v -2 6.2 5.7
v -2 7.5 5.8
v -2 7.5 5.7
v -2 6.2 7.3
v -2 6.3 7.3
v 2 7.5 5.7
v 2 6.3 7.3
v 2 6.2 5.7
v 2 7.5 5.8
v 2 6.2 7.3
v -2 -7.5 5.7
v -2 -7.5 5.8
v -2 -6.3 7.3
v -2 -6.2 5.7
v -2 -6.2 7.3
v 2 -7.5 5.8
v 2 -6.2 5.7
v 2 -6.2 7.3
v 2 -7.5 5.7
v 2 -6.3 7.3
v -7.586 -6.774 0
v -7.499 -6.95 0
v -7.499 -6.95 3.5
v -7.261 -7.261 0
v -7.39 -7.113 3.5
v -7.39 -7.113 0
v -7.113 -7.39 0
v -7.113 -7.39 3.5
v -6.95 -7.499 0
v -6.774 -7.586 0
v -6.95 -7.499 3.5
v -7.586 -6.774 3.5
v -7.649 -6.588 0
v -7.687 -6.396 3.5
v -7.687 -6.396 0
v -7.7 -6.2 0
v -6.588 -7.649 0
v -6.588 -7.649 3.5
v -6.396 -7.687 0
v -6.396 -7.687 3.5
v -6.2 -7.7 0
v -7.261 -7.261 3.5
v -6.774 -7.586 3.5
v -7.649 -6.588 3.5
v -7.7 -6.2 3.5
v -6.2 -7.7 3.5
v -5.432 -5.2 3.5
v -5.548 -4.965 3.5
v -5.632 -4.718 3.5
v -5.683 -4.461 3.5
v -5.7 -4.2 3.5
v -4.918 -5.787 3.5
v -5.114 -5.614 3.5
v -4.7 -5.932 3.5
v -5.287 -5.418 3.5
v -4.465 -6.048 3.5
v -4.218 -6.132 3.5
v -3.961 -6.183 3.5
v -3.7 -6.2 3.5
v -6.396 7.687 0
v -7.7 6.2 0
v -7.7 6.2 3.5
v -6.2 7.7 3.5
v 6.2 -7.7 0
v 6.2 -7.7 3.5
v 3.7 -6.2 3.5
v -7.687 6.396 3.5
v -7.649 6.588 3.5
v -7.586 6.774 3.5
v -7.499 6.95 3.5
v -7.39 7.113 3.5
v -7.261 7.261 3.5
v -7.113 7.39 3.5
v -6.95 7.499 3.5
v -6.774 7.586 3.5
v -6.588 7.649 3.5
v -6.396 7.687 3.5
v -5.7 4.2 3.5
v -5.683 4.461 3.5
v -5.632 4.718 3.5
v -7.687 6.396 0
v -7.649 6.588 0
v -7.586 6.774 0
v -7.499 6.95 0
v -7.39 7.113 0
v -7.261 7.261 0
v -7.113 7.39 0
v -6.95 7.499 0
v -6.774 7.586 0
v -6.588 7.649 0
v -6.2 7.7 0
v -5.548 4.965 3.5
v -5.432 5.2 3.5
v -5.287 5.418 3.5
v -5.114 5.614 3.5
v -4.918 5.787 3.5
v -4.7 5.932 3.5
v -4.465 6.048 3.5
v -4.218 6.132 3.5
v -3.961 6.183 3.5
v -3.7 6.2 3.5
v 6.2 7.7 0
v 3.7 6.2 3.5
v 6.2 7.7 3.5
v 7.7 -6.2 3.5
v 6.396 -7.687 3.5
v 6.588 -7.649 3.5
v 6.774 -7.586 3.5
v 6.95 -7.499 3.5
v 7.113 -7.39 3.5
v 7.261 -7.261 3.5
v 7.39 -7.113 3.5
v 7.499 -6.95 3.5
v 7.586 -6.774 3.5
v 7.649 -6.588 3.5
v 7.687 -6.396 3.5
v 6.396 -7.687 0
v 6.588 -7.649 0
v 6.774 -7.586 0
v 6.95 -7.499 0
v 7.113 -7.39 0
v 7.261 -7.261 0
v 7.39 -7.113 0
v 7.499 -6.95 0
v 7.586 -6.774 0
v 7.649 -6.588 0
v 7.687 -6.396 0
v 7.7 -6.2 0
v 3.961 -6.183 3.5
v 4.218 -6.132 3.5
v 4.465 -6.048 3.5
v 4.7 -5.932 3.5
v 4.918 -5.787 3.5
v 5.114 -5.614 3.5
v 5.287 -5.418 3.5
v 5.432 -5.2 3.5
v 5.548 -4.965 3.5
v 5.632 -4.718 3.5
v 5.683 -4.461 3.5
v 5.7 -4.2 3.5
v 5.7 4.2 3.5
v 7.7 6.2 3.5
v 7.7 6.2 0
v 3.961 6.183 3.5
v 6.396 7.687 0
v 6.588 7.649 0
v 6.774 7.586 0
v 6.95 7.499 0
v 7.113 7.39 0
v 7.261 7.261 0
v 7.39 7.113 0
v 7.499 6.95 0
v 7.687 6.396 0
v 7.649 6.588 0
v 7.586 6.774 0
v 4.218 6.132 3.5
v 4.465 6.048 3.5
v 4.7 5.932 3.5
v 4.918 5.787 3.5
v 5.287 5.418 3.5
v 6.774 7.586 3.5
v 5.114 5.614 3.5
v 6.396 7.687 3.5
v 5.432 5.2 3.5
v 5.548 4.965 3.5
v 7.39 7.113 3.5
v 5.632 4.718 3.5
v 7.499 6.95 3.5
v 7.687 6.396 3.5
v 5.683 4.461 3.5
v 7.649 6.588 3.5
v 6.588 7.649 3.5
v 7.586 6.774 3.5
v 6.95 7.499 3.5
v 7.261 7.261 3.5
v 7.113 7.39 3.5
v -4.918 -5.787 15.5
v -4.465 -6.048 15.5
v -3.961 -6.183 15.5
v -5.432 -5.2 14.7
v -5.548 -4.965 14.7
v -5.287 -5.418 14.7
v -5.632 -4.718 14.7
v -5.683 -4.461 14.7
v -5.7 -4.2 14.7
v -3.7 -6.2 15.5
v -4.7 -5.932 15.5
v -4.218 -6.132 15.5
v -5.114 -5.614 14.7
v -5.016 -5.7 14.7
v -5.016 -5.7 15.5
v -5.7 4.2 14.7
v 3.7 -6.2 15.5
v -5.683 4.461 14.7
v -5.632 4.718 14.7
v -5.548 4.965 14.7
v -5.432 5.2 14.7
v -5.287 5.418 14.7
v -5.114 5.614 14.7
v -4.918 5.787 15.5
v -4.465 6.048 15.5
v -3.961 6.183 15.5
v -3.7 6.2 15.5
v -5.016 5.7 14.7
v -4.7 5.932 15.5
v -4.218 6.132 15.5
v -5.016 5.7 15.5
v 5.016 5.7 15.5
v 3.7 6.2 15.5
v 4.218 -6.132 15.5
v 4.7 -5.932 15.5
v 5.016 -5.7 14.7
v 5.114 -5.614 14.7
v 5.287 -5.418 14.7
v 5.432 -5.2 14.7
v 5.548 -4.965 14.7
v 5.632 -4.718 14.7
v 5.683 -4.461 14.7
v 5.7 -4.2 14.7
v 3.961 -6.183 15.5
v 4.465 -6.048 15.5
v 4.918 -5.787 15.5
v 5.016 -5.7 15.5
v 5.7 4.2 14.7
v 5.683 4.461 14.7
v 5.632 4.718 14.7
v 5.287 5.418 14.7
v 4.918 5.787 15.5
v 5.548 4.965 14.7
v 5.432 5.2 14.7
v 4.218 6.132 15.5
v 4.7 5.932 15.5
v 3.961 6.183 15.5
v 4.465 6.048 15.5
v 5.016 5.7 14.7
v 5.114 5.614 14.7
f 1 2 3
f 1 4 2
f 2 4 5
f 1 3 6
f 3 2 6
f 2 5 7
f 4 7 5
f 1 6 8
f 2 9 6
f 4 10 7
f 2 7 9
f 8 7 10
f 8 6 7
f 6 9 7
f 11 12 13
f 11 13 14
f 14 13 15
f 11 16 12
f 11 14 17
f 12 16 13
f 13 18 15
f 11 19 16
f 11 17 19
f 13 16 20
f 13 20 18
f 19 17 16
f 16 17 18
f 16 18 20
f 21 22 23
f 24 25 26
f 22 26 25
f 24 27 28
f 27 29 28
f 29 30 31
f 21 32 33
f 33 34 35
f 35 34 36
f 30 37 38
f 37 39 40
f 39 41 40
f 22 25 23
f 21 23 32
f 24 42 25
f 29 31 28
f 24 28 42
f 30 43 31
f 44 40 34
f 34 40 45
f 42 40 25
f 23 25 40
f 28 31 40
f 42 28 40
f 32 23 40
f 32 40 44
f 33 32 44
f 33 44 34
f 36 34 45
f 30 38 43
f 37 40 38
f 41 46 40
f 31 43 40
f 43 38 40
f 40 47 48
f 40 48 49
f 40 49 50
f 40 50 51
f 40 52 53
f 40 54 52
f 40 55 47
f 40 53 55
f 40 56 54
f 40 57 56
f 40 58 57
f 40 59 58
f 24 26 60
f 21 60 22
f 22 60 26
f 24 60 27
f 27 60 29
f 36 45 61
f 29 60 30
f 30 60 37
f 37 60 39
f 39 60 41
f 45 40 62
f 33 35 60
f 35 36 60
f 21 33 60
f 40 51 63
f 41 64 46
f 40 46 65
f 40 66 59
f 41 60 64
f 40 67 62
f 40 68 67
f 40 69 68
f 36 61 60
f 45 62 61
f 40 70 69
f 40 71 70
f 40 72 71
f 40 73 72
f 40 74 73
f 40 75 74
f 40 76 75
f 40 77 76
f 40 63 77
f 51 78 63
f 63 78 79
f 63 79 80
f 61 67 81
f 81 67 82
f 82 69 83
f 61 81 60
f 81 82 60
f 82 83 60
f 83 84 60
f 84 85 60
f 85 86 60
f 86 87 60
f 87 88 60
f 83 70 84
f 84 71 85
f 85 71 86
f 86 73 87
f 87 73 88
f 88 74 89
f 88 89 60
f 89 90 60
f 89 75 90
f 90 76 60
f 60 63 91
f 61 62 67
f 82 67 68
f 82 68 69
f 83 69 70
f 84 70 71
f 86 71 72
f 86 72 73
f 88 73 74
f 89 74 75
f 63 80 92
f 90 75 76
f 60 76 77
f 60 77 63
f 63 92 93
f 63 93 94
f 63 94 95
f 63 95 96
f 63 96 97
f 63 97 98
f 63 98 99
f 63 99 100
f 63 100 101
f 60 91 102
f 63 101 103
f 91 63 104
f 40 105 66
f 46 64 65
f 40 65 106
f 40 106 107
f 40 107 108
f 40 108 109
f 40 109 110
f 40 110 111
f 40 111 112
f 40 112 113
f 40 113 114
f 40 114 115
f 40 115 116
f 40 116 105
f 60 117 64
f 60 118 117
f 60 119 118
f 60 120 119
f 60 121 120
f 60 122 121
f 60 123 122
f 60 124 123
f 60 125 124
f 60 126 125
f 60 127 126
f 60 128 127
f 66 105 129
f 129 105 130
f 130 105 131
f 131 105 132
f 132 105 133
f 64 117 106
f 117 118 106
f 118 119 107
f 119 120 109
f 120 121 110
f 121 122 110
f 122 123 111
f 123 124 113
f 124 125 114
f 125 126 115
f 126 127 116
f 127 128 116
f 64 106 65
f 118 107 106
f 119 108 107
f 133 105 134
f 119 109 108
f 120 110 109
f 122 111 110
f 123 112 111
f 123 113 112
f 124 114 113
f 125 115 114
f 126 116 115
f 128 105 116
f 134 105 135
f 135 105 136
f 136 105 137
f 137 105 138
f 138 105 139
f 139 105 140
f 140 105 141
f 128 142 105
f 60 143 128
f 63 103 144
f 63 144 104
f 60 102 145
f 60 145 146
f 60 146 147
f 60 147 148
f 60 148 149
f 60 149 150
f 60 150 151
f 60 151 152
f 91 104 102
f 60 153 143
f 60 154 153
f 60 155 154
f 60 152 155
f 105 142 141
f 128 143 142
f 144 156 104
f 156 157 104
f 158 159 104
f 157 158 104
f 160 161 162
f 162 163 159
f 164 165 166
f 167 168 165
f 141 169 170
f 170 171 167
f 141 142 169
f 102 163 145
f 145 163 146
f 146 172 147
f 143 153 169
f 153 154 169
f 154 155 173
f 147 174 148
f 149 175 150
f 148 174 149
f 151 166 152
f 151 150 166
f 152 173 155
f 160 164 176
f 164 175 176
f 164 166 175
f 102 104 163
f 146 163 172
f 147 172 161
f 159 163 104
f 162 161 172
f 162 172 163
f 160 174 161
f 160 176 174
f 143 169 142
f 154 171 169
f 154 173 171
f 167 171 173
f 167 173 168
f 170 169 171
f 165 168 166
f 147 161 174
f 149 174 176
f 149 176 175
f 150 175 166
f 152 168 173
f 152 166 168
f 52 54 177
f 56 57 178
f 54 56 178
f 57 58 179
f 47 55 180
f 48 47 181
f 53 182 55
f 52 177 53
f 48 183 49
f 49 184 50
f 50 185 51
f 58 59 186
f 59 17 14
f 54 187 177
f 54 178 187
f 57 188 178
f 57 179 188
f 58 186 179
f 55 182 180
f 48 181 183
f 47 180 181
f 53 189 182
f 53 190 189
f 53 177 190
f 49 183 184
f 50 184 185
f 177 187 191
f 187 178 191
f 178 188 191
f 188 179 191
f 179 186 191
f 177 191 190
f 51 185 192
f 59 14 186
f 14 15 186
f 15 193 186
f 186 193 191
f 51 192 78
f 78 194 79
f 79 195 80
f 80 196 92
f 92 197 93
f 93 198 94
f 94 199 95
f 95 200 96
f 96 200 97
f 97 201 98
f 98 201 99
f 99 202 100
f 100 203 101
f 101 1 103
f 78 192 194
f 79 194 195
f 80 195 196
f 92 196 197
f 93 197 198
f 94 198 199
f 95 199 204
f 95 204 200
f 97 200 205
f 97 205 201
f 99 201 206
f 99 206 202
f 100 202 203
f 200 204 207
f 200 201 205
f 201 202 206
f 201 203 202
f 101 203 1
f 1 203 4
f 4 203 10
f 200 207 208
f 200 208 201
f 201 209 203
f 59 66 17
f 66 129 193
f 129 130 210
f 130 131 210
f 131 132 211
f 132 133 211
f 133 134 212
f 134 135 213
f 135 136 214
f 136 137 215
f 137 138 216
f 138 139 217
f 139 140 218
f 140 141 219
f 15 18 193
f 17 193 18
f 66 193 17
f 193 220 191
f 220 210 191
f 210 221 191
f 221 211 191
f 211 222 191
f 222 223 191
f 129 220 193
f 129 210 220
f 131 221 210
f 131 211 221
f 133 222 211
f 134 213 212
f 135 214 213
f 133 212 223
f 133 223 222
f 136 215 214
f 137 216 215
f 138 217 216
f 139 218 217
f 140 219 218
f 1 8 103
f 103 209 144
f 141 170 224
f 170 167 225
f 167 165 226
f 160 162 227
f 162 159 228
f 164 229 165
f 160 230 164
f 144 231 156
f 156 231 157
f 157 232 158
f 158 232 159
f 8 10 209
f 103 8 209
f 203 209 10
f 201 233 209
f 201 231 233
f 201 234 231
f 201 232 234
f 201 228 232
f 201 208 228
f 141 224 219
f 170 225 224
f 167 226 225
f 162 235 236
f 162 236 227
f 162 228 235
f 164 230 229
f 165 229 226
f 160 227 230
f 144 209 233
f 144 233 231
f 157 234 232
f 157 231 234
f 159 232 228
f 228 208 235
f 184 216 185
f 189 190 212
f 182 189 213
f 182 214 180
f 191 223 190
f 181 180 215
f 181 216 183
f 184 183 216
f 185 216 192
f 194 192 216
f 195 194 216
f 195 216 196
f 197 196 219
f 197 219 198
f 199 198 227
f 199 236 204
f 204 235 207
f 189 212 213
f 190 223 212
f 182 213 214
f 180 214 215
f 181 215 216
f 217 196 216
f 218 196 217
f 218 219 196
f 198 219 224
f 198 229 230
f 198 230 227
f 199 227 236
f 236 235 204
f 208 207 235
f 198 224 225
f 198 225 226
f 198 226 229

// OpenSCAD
// file: parameters.scad
// ============================================
// MODULAR CABLE ORGANIZER - SHARED PARAMETERS
// ============================================
// All dimensions in mm - include this in all files
// ============================================

$fn = 48;

// === TOLERANCES ===
clearance = 0.3;
port_clearance = 0.1;  // Extra clearance for port openings (reduced - 0.2 was too loose for USB-C)
wall = 1.6;

// === SLOT DIMENSIONS (2:1 aspect ratio) - scaled to 2/3 ===
slot_width = 32;  // Standard wide slot for larger connectors
slot_width_narrow = 16;  // Narrow slot for compact connectors (USB-C, micro-USB, USB-A, Lightning, 3.5mm)
slot_height = 16;  // Height is same for both wide and narrow
slot_depth = 4;  // Reduced from 6mm - less frame depth needed

// === FRAME STRUCTURE ===
frame_wall = 2.0;   // Wall between slots - 6 layers @ 0.4mm nozzle for strength
frame_border = 6;  // Increased by 10mm for mounting holes with countersink
frame_back = 2;     // Slightly thicker for snap catch strength
mount_hole_dia = 3;
countersink_dia = 6;  // Diameter of countersink for screw heads
countersink_depth = 2;  // Depth of countersink

// === DEFAULT GRID (can be overridden in individual files) ===
grid_cols = 2;
grid_rows = 2;

// === INSERT BASE DIMENSIONS ===
insert_width = slot_width - (2 * clearance);
insert_height = slot_height - (2 * clearance);
insert_base_depth = slot_depth - 0.5;

// === NARROW INSERT BASE DIMENSIONS ===
insert_width_narrow = slot_width_narrow - (2 * clearance);
insert_height_narrow = slot_height - (2 * clearance);

// === INSERT BODY (protrudes from frame) ===
insert_body_width = insert_width - 4;
insert_body_height = insert_height - 3;
insert_body_depth = 12;  // Deep enough to accommodate male cable connectors
insert_top_thick = 1.5;  // Top platform thickness

// === NARROW INSERT BODY (protrudes from frame) ===
insert_body_width_narrow = insert_width_narrow - 4;
insert_body_height_narrow = insert_height_narrow - 3;

// === SNAP TABS (on neck/body - catch on back plate) ===
snap_tab_width = 4;
snap_tab_protrude = 1.2;  // How far tab sticks out from body
snap_tab_thick = 1.5;     // Z thickness of tab
snap_tab_offset = 2.2;      // Distance from base to tab bottom on insert (increased to clear frame)

// === CONNECTOR PORT DIMENSIONS & BODY DEPTHS ===
// Port dimensions from reference blueprints
// Body depths sized to match typical male connector lengths

// USB-C: 8.4 x 2.6mm, male connector ~9mm
usbc_w = 8.4;
usbc_h = 2.6;
usbc_r = 1.0;
usbc_body_depth = 9;

// USB-A: 12.0 x 4.5mm (tighter fit based on test print)
usba_w = 12.0;
usba_h = 4.5;
usba_r = 0.5;
usba_body_depth = 13;

// USB Mini: 6.9 x 3.0mm, male connector ~9mm
usb_mini_w = 6.9;
usb_mini_h = 3.0;
usb_mini_r = 0.5;
usb_mini_body_depth = 9;

// USB Micro-B: 7.0 x 1.8mm (tighter fit based on test print)
usb_micro_w = 7.0;
usb_micro_h = 1.8;
usb_micro_r = 0.3;
usb_micro_body_depth = 7;

// USB-B: 8.4 x 7.6mm (printer/keyboard style connector)
usb_b_w = 8.4;
usb_b_h = 7.6;
usb_b_r = 0.8;
usb_b_body_depth = 14;

// Lightning: 7.6 x 1.5mm, male connector ~8mm (measured from actual connector)
lightning_w = 7.6;
lightning_h = 1.5;
lightning_r = 0.5;
lightning_body_depth = 8;

// HDMI: 13.9 x 4.45mm (adjusted taper for better fit)
hdmi_w = 13.9;
hdmi_h = 4.45;
hdmi_r = 0.5;
hdmi_body_depth = 16;

// 3.5mm Audio Jack: male plug ~14mm (3.5mm = ~3.5mm, but use 3.6mm for snug fit)
audio_jack_dia = 3.6;
audio_jack_body_depth = 14;

// Blank/Label: recessed area for label
label_w = 30;
label_h = 12;
label_depth = 0.8;

// === CALCULATED VALUES ===
frame_total_depth = frame_back + slot_depth;
grid_width = (grid_cols * slot_width) + ((grid_cols - 1) * frame_wall);
grid_height = (grid_rows * slot_height) + ((grid_rows - 1) * frame_wall);
frame_width = grid_width + (2 * frame_border);
frame_height_total = grid_height + (2 * frame_border);
insert_total_depth = insert_base_depth + insert_body_depth;
// main file
// ============================================
// PRINT FILE: Blank Label Insert (NARROW)
// ============================================
// Narrow width version with recessed area for labels
// Print with base down (no supports needed)
// Use for custom labels or text (paint, sticker, etc.)
// ============================================

include <insert_base.scad>

// Render narrow blank label insert
insert_blank_label_narrow();
